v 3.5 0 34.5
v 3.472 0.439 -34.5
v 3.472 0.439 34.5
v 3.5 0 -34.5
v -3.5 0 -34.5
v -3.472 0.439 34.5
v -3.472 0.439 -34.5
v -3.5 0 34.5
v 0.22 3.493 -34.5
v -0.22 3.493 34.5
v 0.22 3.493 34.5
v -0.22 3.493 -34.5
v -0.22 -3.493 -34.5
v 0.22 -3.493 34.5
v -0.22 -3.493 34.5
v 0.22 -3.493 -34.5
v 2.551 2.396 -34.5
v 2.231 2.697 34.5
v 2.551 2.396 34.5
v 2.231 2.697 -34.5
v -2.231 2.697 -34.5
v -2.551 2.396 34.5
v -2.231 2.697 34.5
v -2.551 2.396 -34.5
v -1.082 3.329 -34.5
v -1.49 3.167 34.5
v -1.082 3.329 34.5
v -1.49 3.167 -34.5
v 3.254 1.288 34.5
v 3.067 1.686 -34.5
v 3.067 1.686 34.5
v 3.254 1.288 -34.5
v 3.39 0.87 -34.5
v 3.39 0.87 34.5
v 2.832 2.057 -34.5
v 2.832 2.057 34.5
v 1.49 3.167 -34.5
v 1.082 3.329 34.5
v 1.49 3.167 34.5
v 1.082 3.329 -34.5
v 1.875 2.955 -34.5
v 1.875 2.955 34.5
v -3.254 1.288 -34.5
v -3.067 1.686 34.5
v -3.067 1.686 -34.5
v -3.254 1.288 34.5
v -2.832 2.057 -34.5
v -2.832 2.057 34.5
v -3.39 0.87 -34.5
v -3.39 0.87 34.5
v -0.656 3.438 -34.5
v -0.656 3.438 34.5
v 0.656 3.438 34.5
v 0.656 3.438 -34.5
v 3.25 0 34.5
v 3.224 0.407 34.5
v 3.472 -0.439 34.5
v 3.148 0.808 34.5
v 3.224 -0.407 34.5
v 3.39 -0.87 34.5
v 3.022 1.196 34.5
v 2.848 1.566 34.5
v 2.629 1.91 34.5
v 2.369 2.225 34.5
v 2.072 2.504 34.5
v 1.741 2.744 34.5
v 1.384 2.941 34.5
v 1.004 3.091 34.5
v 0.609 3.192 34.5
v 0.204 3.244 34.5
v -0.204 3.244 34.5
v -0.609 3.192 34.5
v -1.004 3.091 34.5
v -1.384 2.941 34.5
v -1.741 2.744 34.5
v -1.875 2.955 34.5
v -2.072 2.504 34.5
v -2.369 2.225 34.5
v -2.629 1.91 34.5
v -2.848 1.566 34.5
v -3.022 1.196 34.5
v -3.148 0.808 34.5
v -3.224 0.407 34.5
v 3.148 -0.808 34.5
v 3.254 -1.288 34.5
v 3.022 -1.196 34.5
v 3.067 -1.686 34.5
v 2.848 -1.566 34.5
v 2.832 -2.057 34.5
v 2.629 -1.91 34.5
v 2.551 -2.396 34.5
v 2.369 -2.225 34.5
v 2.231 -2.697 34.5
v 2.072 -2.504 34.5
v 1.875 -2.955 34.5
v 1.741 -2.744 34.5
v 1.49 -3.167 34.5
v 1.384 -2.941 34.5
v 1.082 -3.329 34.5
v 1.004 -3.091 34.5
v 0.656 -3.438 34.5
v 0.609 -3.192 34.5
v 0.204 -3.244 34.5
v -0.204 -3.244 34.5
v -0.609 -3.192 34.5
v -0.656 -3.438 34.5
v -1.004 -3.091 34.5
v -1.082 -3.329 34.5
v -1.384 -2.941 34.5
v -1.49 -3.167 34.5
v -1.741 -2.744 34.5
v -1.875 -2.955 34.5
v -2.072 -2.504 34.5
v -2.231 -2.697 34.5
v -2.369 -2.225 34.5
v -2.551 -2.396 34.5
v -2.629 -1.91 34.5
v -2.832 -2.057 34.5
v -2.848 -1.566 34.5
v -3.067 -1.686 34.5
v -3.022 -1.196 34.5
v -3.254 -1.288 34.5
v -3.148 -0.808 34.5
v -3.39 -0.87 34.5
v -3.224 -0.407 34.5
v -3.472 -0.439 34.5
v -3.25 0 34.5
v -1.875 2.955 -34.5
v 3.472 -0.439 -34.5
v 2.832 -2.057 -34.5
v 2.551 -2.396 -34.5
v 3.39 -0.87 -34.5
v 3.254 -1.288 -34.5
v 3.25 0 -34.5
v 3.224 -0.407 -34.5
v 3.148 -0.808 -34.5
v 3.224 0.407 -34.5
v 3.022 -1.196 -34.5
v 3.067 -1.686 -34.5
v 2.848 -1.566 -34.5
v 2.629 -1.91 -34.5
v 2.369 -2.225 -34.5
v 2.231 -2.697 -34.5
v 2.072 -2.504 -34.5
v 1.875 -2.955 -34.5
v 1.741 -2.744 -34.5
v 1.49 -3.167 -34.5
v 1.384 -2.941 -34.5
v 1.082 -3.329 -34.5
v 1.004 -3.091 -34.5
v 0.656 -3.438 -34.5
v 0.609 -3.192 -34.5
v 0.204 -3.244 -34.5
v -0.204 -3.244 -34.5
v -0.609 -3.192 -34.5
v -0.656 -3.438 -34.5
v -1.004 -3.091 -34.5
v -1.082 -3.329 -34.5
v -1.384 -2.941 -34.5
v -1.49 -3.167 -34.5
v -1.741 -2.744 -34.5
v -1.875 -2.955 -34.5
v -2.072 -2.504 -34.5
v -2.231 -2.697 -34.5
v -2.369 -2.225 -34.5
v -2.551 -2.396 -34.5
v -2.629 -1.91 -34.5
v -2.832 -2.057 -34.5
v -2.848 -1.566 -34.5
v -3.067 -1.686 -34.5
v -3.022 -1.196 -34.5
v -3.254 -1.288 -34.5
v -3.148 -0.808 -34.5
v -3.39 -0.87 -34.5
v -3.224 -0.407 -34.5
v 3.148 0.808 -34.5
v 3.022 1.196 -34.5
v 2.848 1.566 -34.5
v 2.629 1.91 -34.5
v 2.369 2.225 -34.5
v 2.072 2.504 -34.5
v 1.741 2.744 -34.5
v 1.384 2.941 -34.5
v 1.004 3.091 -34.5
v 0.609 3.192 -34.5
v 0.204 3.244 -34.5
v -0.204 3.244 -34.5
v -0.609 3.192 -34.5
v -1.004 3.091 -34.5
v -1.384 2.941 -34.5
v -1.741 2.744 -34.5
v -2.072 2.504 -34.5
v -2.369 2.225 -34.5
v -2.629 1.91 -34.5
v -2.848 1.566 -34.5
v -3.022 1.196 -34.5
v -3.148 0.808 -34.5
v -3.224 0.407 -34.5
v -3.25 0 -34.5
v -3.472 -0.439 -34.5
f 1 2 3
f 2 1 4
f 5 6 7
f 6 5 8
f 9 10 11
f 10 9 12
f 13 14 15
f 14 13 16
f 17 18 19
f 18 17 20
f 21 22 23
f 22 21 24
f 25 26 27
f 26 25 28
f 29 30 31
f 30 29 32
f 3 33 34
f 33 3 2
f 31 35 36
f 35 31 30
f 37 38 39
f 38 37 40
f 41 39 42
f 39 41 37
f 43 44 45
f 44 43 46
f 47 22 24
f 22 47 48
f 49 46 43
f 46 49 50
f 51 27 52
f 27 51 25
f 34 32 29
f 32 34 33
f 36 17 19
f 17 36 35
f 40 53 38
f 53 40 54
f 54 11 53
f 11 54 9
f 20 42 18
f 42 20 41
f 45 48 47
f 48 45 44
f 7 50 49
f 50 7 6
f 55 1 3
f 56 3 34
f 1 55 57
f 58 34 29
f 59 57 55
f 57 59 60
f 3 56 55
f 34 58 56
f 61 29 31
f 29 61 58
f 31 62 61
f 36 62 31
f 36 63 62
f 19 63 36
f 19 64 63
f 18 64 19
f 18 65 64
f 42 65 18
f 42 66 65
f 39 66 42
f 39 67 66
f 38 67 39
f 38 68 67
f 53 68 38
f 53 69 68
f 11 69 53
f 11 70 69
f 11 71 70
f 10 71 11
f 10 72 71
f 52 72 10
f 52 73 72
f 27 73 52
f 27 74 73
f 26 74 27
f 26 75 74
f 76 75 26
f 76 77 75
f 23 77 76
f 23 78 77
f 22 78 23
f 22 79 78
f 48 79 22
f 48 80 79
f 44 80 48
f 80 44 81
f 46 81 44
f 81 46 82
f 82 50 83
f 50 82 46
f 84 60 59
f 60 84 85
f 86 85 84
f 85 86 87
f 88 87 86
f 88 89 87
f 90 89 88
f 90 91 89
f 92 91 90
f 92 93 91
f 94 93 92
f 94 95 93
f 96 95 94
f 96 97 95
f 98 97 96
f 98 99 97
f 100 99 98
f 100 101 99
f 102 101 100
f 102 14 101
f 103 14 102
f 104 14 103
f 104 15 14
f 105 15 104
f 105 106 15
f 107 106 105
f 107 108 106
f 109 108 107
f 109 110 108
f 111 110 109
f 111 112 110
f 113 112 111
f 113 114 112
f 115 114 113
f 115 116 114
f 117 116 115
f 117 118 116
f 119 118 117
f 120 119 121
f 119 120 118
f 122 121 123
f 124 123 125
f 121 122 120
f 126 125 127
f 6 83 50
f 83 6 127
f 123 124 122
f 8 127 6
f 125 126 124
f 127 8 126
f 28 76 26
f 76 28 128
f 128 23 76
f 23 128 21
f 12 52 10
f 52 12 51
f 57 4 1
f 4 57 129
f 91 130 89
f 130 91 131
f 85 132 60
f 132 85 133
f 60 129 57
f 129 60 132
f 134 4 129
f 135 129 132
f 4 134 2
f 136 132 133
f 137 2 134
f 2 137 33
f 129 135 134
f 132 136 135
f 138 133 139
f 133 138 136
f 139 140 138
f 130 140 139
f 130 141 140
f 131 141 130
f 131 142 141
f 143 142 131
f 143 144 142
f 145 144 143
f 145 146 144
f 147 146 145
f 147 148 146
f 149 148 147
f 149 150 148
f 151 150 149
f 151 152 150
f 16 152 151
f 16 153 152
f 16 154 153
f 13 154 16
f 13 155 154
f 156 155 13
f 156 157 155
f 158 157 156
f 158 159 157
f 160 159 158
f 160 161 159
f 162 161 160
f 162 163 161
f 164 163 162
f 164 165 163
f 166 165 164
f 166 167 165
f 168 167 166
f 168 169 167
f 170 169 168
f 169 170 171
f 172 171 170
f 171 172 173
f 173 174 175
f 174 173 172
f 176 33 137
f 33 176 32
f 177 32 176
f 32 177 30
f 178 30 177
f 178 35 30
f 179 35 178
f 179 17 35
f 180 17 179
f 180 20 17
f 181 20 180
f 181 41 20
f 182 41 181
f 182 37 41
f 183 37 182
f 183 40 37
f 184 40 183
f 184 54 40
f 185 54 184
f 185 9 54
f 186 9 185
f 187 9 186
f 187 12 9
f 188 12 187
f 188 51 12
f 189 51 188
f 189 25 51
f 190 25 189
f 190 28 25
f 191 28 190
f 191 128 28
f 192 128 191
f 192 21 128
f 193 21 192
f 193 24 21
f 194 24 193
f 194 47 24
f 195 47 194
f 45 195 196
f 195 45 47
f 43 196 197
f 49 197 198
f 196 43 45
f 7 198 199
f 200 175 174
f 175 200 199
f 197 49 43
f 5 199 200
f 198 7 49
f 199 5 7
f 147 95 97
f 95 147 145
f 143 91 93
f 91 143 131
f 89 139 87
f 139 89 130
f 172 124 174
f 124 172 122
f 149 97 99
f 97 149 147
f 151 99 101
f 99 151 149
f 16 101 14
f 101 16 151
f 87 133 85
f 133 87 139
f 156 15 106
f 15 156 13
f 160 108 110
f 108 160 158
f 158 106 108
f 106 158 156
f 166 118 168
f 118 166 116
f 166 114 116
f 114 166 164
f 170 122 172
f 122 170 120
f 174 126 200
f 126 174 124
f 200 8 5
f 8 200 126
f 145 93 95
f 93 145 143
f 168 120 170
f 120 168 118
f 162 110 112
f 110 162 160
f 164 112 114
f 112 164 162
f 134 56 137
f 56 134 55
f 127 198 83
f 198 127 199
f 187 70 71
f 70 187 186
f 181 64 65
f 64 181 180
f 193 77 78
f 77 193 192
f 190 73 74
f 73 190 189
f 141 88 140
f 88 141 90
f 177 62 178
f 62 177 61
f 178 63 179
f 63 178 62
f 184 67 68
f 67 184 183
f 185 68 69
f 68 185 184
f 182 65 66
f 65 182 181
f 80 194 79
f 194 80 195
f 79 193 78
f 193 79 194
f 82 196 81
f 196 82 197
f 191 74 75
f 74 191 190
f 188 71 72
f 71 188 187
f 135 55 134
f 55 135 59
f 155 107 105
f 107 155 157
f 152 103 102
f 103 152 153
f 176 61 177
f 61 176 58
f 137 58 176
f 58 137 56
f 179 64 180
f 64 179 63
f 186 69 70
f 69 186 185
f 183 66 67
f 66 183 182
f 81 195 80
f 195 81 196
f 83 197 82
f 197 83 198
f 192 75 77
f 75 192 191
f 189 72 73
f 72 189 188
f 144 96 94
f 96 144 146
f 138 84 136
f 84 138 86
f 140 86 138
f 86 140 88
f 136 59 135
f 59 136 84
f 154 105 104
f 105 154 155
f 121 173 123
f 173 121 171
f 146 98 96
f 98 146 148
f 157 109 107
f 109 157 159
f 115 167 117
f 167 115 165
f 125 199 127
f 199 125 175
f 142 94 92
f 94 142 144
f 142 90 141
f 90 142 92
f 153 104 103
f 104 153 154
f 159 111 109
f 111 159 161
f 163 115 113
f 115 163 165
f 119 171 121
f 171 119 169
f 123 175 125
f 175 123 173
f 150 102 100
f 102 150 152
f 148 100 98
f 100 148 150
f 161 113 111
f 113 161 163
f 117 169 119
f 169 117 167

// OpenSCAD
$fn = 50;


difference() {
	union() {
		translate(v = [0, 0, -34.5000000000]) {
			cylinder(h = 69, r = 3.5000000000);
		}
	}
	union() {
		translate(v = [0, 0, -100.0000000000]) {
			cylinder(h = 200, r = 3.2500000000);
		}
	}
}
